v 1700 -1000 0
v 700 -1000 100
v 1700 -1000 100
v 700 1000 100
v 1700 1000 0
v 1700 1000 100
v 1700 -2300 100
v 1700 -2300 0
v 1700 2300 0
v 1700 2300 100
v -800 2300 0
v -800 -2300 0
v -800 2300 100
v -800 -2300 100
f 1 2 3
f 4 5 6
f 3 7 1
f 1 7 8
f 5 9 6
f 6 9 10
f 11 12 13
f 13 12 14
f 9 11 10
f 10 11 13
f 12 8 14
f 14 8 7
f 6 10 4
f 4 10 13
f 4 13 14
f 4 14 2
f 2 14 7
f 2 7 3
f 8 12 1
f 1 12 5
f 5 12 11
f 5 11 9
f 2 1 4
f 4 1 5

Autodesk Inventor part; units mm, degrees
ref_plane "YZ Plane" through (0, 0, 0) normal (1, 0, 0) x (0, 1, 0)
ref_plane "XZ Plane" through (0, 0, 0) normal (0, 1, 0) x (-1, 0, 0)
ref_plane "XY Plane" through (0, 0, 0) normal (0, 0, 1) x (1, 0, 0)
sketch "スケッチ1" plane through (0, 0, 0) normal (0, 0, 1) x (1, 0, 0)
  line L0 (-800, 2300) -> (1700, 2300)
  line L1 (1700, 2300) -> (1700, -2300)
  line L2 (1700, -2300) -> (-800, -2300)
  line L3 (-800, -2300) -> (-800, 2300)
  line L4 (-1000, 2500) -> (2000, 2500) construction
  line L5 (2000, 2500) -> (2000, -2500) construction
  line L6 (2000, -2500) -> (-1000, -2500) construction
  line L7 (-1000, -2500) -> (-1000, 2500) construction
  point P0 (0, 0)
  point P1 (-1000, 0)
  dimension "d13" = 2500
  dimension "d14" = 5000
  dimension "d15" = 1000
  dimension "d16" = 2000
  dimension "d17" = 200
  dimension "d18" = 200
  dimension "d19" = 200
extrude "押し出し1" add sketch "スケッチ1" along normal blind 100
sketch "スケッチ4" plane through (0, 0, 0) normal (0, 1, 0) x (-1, 0, 0)
  line L0 (-1700, 0) -> (-700, 100)
  line L1 (-1700, 100) -> (800, 100) projected
  line L2 (-1700, 0) -> (-1700, 100) projected
  line L3 (-700, 100) -> (-1700, 100)
  line L4 (-1700, 100) -> (-1700, 0)
  point P0 (0, 0)
  dimension "d20" = 1000
extrude "押し出し4" cut sketch "スケッチ4" along normal mid plane 2000
properties part number "Stage"
